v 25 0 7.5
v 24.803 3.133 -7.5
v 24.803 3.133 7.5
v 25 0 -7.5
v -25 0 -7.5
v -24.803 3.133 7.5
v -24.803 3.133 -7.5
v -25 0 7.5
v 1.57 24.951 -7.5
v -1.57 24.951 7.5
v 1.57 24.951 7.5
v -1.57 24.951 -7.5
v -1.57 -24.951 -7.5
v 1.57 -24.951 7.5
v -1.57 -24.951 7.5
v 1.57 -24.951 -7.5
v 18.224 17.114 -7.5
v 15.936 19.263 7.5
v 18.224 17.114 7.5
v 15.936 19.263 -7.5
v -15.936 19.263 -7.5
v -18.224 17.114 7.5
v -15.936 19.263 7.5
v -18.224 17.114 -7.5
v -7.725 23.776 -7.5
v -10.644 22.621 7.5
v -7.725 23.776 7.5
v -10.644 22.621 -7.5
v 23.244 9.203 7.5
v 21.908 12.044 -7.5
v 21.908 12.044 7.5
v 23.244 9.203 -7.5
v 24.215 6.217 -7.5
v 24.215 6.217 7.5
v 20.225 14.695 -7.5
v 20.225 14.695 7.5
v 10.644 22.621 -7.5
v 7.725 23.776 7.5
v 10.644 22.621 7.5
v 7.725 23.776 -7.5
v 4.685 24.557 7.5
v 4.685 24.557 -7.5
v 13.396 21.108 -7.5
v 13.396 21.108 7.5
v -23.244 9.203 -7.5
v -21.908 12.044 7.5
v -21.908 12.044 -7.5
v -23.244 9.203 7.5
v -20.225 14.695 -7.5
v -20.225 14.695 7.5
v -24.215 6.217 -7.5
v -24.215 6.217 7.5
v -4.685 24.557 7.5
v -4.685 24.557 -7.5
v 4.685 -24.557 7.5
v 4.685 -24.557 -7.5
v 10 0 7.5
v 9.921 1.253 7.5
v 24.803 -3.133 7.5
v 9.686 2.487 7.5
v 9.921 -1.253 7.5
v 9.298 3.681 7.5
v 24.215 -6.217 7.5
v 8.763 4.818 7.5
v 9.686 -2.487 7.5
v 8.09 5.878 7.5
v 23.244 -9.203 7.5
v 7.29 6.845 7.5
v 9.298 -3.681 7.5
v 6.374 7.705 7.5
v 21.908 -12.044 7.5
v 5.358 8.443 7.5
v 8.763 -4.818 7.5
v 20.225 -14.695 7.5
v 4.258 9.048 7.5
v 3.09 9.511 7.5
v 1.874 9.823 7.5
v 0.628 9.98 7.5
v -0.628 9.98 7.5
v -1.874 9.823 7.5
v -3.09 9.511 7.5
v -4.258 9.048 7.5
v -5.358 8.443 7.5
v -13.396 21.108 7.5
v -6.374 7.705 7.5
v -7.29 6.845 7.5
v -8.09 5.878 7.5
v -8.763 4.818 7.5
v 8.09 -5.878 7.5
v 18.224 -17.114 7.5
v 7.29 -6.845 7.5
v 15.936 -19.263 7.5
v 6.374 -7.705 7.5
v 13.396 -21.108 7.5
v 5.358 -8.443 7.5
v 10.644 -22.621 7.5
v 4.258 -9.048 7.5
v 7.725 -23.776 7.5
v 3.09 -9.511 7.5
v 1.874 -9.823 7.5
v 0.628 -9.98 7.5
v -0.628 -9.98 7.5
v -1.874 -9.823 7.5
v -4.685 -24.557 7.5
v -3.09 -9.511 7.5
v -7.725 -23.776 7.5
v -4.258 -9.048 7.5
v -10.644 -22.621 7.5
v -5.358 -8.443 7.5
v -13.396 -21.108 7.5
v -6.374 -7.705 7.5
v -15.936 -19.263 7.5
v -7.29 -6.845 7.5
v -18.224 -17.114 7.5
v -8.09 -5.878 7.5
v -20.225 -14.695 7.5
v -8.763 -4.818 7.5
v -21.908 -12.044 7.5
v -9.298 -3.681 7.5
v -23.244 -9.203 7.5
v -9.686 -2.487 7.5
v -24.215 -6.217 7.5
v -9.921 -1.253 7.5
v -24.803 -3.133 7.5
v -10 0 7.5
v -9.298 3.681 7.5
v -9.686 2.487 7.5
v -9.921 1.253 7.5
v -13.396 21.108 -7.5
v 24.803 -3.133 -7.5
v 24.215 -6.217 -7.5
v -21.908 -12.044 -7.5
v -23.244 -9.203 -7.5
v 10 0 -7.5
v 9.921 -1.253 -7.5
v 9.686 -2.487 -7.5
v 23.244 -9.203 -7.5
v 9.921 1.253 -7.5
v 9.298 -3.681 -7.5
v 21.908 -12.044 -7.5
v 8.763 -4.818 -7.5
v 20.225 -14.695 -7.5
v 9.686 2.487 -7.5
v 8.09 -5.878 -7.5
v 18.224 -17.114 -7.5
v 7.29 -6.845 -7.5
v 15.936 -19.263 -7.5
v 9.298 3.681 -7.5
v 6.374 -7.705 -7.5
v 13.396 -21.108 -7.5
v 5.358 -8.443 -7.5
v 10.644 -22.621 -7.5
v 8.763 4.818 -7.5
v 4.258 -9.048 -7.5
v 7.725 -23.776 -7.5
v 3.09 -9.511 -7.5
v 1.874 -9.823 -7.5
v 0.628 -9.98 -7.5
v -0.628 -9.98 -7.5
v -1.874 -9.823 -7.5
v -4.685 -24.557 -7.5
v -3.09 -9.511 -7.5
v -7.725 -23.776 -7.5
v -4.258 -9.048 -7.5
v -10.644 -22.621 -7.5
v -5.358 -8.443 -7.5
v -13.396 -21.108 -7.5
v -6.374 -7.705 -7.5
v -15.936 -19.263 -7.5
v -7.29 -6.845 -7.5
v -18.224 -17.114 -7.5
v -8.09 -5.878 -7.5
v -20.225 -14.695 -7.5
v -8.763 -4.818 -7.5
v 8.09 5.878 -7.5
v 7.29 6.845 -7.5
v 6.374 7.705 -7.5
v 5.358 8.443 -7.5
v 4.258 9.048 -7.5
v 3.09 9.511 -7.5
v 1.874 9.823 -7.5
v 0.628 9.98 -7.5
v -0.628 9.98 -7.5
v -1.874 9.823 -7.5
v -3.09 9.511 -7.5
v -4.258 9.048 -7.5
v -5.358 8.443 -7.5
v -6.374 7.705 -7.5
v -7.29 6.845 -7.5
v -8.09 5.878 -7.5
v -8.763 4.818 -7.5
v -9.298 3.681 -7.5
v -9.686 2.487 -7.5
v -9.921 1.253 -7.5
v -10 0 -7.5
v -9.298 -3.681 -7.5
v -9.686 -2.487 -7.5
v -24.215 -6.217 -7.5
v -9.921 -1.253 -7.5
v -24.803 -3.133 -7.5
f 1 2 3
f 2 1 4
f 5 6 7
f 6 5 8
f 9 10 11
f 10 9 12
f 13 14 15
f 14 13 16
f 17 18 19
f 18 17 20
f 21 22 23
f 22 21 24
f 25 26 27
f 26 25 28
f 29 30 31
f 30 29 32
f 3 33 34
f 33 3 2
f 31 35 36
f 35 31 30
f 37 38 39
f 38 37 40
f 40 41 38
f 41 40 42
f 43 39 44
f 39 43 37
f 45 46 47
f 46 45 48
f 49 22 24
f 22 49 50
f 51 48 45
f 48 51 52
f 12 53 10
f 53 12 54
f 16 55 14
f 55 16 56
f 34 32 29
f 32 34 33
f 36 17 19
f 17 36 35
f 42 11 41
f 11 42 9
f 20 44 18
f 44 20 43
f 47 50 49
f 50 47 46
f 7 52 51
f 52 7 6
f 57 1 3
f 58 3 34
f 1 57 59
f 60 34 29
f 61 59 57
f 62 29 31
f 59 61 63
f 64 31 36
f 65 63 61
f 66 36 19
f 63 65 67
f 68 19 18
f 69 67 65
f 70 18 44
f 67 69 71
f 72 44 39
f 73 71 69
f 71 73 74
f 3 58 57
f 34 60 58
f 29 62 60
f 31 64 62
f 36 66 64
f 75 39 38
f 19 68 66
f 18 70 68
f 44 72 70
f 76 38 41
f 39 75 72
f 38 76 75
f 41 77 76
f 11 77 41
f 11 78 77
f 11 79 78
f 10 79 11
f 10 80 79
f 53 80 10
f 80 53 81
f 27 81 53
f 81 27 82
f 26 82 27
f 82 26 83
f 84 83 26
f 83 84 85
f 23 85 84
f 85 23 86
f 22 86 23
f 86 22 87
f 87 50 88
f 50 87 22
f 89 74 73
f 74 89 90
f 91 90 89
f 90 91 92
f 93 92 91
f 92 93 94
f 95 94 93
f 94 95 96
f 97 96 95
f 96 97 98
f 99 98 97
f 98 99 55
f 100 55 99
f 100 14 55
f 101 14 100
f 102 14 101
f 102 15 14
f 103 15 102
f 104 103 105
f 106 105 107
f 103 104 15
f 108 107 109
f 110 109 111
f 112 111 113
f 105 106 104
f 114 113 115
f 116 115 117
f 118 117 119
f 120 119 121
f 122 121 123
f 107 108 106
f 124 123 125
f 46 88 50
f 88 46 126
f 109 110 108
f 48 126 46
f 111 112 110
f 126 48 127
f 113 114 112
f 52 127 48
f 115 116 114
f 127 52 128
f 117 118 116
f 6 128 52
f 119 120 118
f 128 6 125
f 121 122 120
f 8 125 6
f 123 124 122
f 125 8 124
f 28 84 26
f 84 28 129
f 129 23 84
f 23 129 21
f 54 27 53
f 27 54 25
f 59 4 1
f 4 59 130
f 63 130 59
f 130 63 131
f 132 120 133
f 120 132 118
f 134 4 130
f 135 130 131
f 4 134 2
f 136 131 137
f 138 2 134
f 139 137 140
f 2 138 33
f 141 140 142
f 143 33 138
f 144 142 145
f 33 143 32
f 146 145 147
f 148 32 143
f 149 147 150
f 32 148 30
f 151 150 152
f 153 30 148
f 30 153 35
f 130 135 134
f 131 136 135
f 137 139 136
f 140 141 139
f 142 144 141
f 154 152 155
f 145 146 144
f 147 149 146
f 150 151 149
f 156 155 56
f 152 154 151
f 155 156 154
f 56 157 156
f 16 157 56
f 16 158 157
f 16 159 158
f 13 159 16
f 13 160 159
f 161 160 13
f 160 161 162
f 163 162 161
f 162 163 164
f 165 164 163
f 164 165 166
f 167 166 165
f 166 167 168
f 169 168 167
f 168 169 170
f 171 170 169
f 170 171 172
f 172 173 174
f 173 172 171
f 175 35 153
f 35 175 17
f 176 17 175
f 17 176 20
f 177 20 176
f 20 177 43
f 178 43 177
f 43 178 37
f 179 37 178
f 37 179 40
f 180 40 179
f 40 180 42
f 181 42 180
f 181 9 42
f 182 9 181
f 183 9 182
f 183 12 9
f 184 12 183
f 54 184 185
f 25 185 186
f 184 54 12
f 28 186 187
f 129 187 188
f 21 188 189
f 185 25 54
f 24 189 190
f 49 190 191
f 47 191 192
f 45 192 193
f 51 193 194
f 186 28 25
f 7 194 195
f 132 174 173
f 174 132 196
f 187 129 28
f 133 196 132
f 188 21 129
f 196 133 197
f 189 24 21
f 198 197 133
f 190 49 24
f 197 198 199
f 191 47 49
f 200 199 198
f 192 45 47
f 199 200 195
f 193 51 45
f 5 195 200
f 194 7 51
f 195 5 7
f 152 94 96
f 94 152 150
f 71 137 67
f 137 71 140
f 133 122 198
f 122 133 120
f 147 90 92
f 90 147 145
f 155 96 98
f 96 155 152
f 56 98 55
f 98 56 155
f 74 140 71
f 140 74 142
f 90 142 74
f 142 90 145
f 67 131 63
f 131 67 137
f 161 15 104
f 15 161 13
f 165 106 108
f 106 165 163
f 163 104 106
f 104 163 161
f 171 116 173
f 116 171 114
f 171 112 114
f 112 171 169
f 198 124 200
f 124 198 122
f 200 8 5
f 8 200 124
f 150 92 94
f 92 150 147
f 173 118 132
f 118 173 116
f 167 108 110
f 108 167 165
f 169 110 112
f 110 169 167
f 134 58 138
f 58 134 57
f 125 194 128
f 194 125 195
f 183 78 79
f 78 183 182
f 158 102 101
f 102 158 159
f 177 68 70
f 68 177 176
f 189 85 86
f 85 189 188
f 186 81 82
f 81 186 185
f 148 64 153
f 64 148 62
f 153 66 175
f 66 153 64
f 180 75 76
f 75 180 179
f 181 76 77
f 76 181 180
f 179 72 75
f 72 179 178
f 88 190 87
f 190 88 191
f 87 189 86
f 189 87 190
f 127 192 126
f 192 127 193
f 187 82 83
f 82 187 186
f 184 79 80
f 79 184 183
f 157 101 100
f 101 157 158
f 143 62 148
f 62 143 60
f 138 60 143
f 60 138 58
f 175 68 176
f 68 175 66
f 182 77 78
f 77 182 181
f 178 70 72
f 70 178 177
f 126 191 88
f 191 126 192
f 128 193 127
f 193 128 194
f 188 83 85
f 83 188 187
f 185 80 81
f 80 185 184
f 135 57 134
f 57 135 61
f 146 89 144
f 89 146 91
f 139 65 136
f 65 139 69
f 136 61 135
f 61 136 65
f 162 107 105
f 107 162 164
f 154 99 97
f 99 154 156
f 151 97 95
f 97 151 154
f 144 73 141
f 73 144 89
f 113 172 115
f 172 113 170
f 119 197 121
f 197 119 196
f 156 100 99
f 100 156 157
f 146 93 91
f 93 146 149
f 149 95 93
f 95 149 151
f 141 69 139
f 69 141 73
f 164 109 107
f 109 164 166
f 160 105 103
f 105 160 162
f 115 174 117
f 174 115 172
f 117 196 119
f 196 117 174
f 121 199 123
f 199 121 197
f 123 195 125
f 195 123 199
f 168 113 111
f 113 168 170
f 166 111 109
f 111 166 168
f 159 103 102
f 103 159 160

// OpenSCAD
$fn = 50;


difference() {
	union() {
		translate(v = [0, 0, -7.5000000000]) {
			cylinder(h = 15, r = 25.0000000000);
		}
	}
	union() {
		translate(v = [0, 0, -100.0000000000]) {
			cylinder(h = 200, r = 10);
		}
	}
}
